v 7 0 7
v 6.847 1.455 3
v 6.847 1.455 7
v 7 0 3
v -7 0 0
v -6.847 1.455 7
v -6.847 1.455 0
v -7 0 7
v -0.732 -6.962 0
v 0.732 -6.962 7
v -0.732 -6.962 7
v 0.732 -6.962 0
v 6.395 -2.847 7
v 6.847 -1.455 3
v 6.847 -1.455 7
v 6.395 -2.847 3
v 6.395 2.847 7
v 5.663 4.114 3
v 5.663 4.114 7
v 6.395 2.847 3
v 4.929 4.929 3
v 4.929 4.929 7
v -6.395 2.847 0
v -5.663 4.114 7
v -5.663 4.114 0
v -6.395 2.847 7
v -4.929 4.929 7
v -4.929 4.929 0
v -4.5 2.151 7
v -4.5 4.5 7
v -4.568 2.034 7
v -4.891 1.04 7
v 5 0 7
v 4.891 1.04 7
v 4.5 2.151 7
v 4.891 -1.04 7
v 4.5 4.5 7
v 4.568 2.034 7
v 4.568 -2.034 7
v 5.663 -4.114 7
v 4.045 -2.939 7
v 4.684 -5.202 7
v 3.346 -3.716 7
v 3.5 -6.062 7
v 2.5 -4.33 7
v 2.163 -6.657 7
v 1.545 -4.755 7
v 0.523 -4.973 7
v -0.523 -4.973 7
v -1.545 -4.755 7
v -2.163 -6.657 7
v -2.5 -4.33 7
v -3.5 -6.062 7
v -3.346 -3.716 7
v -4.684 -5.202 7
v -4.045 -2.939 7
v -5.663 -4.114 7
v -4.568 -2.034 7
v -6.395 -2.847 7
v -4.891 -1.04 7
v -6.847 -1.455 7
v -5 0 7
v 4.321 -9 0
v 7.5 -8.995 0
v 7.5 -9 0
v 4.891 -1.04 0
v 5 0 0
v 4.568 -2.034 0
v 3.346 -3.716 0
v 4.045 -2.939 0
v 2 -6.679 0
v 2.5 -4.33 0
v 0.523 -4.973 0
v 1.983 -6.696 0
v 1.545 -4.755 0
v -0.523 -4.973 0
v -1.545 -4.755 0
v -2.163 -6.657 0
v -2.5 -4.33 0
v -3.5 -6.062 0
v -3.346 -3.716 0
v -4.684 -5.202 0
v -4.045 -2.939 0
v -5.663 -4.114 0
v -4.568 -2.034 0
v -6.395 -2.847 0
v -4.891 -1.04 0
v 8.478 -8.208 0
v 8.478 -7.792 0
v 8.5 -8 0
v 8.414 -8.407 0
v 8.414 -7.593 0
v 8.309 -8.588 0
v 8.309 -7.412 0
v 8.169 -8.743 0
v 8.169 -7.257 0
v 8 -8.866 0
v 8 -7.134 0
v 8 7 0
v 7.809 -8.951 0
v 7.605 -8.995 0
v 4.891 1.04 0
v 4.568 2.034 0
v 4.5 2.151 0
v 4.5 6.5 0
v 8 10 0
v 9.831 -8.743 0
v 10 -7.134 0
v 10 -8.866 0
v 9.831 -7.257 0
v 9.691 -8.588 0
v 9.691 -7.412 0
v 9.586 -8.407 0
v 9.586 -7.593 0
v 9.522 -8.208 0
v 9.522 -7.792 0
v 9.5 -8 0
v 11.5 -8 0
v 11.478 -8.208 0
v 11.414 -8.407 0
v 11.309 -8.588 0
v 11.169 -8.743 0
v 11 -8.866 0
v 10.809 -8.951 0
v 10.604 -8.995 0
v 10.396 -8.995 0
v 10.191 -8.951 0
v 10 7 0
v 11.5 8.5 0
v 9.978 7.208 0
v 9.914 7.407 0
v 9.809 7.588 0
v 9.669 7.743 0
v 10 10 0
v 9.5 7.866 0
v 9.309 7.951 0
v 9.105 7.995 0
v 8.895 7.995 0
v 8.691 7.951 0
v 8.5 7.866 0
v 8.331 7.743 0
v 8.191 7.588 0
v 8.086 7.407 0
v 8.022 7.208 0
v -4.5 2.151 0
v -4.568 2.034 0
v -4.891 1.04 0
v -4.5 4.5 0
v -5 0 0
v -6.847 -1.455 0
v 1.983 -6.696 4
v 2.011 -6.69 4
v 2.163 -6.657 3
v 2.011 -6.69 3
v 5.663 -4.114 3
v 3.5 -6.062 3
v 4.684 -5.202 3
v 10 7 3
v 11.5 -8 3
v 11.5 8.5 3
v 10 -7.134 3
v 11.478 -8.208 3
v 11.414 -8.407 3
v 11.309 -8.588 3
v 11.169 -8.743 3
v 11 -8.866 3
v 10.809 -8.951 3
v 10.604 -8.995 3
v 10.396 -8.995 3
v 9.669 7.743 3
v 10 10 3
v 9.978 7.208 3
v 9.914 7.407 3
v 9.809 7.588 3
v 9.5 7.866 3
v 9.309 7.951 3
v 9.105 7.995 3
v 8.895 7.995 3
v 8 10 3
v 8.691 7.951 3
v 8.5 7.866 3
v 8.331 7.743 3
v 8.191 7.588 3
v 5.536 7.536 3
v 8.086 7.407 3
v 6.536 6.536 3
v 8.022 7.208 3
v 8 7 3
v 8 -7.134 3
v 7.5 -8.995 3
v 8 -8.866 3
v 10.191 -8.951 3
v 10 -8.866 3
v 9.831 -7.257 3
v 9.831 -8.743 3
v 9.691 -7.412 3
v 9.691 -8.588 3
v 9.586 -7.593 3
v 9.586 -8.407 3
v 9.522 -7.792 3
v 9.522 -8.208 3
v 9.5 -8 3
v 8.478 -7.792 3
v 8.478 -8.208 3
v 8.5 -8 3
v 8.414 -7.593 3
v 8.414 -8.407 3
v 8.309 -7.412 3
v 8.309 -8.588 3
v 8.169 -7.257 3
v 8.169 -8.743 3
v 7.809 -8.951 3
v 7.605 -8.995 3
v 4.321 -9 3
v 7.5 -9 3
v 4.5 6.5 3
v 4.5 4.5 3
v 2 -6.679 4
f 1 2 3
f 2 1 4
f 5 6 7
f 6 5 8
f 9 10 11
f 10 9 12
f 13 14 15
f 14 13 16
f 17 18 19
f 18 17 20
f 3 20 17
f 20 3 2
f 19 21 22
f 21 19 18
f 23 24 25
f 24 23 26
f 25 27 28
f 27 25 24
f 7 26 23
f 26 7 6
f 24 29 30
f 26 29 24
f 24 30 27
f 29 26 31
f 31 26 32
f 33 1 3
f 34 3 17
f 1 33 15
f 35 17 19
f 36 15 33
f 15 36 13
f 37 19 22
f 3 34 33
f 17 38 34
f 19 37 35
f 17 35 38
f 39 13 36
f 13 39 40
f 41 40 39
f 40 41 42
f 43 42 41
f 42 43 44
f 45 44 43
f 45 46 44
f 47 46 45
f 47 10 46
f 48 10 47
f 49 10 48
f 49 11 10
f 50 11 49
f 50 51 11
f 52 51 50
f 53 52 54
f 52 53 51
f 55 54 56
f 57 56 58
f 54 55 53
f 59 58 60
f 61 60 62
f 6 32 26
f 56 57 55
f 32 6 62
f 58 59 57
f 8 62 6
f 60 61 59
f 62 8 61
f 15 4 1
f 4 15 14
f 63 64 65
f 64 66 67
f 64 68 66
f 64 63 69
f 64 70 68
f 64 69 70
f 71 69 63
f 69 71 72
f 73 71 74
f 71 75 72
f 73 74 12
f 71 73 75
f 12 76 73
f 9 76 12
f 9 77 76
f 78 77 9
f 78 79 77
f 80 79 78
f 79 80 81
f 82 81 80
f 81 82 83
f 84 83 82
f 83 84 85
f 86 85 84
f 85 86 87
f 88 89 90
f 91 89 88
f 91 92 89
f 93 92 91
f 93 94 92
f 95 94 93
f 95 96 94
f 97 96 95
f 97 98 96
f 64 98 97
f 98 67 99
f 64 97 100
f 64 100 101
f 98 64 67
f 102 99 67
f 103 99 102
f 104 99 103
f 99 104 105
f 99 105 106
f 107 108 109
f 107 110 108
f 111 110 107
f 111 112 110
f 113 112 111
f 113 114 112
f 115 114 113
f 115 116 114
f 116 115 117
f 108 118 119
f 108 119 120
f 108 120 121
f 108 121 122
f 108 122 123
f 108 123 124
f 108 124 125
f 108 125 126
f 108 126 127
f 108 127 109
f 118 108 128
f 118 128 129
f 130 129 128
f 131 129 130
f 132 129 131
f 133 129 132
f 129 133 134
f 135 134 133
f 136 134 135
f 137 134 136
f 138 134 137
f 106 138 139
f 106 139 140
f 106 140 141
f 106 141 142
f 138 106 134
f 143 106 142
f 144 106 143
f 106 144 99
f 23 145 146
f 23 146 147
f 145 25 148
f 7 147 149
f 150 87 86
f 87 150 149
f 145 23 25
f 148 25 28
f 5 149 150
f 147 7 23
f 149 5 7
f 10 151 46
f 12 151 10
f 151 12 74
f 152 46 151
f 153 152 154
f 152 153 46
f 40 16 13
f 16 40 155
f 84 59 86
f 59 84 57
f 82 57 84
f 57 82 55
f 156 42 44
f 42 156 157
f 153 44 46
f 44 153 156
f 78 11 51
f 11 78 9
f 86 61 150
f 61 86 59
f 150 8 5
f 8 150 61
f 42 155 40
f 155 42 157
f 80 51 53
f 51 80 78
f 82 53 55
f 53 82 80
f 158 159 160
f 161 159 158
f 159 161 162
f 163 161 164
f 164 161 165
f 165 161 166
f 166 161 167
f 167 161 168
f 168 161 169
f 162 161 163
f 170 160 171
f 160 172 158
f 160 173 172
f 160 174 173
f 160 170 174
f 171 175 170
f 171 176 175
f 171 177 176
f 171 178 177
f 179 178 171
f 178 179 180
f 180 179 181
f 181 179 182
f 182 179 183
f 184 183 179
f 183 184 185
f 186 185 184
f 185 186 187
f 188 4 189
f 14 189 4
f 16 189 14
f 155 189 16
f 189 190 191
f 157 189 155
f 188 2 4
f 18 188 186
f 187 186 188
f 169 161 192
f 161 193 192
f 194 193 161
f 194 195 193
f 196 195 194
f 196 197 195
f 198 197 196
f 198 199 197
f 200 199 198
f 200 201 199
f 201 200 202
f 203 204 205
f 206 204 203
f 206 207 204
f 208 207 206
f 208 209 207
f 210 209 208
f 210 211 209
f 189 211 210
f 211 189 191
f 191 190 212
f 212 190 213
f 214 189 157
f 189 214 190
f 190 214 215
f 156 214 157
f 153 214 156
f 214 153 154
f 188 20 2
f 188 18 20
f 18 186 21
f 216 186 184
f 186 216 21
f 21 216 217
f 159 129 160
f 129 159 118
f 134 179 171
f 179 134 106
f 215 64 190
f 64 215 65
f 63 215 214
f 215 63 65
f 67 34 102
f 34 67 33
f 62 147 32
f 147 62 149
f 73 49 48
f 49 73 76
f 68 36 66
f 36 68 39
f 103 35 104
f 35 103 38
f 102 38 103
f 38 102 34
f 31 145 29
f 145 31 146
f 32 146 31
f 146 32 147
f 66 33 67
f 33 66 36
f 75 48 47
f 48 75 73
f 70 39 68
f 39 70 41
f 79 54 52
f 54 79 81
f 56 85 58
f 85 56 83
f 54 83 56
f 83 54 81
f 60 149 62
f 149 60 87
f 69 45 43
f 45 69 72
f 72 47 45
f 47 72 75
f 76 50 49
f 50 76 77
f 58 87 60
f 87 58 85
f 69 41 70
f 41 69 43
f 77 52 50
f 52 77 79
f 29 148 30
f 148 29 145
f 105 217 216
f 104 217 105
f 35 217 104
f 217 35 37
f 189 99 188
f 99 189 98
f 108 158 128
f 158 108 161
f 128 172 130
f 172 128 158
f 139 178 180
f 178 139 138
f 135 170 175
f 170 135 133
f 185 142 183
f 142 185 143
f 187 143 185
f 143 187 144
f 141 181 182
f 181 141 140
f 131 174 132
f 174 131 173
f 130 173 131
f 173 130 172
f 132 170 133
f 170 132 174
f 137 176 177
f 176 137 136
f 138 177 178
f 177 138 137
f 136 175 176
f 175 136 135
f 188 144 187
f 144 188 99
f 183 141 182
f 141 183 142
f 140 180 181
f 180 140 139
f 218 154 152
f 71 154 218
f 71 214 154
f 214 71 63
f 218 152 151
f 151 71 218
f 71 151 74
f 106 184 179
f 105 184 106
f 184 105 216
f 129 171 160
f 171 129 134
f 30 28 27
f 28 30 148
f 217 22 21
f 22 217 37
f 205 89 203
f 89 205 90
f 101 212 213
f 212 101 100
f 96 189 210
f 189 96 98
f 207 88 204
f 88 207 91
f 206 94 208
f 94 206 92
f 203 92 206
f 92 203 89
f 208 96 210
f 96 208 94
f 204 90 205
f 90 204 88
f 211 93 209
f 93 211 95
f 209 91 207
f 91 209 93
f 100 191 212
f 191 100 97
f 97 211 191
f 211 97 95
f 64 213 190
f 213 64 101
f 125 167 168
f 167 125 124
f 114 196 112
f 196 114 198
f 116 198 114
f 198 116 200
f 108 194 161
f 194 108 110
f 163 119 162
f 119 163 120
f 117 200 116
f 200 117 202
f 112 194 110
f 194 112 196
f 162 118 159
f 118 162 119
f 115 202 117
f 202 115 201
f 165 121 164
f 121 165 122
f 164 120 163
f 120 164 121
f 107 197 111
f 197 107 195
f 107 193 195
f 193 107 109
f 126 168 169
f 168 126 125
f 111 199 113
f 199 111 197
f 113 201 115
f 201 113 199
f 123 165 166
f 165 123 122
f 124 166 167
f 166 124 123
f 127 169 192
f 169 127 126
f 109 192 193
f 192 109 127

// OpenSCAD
// PRUSA iteration3
// LCD cable clip
// GNU GPL v3
// Josef Průša <iam@josefprusa.cz> and contributors
// http://www.reprap.org/wiki/Prusa_Mendel
// http://prusamendel.org


difference(){
    union(){
    cylinder(r=7,h = 7, $fn=30);
    translate([2,-8,0]) cube([9.5,18,3]);
    translate([2,-9,0]) cube([5.5,5,3]);
    }
translate([0,0,-1]) cylinder(r=5,h = 10, $fn=30);
translate([-4.5,0,-5]) cube([9,15,15]);
translate([8,-12,-1]) cube([2,19,5]);
translate([9,7,-1]) cylinder(r=1,h = 5, $fn=30);
    
    //corners
    translate([2,-13.75,-1]) rotate([0,0,45]) cube([5,5,5]);    
    
    translate([4,6,-1]) rotate([0,0,45]) cube([10,10,5]);    
    translate([14,6,-1]) rotate([0,0,45]) cube([10,10,5]);    
    translate([-3,3,-1]) rotate([0,0,45]) cube([5,5,10]);    
    translate([3,3,3]) rotate([0,0,45]) cube([5,5,10]);    
}


translate([7.5,-8,0]) cylinder(r=1,h = 3, $fn=30);
translate([10.5,-8,0]) cylinder(r=1,h = 3, $fn=30);
